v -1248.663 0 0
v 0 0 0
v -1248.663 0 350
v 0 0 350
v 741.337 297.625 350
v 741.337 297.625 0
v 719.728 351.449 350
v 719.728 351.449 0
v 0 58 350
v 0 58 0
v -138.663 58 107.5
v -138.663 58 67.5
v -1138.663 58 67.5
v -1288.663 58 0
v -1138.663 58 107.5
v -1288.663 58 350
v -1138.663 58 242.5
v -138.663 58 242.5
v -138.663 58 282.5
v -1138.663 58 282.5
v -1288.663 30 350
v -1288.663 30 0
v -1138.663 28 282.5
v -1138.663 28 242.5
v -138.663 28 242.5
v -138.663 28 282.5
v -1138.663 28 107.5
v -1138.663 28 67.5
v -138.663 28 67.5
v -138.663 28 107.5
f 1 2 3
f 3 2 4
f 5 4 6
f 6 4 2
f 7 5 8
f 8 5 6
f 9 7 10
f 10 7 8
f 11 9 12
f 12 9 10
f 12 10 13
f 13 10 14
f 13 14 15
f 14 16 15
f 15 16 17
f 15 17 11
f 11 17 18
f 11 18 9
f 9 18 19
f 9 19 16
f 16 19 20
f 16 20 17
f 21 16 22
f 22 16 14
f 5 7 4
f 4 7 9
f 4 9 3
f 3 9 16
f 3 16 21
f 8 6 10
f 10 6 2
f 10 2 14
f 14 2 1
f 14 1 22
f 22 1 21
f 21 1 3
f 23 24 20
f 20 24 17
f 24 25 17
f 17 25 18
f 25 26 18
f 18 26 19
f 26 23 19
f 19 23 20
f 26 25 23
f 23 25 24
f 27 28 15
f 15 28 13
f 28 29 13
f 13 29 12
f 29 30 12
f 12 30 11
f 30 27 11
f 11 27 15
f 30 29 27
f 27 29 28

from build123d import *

# Parameters (mm, degrees)
SALIENTE_EXTRUIR2_DEPTH = 350
CORTAR_EXTRUIR1_DEPTH   = 350
CROQUIS4_W              = 1000
CROQUIS4_H              = 40
CORTAR_EXTRUIR2_DEPTH   = 30


with BuildPart() as part:
    # Croquis2 → Saliente-Extruir2 (new body)
    with BuildSketch(Plane.XY):
        Polygon((0, 0), (741.33697933, 297.624853905), (719.728110413, 351.449167966), (0, 58), (-1288.66302067, 58), (-1288.66302067, 0), align=None)
    extrude(amount=SALIENTE_EXTRUIR2_DEPTH)

    # Croquis3 → Cortar-Extruir1 (cut)
    with BuildSketch(Plane.XY.offset(350)):
        Polygon((-1288.66302067, 30), (-1288.66302067, 0), (-1248.66302067, 0), align=None)
    extrude(amount=-CORTAR_EXTRUIR1_DEPTH, mode=Mode.SUBTRACT)

    # Croquis4 → Cortar-Extruir2 (cut)
    with BuildSketch(Plane(origin=(0, 58, 0), x_dir=(1, 0, 0), z_dir=(0, 1, 0))):
        with Locations((-638.66302067, -87.5)):
            Rectangle(CROQUIS4_W, CROQUIS4_H)
        with Locations((-638.66302067, -262.5)):
            Rectangle(CROQUIS4_W, CROQUIS4_H)
    extrude(amount=-CORTAR_EXTRUIR2_DEPTH, mode=Mode.SUBTRACT)


solid = part.part
